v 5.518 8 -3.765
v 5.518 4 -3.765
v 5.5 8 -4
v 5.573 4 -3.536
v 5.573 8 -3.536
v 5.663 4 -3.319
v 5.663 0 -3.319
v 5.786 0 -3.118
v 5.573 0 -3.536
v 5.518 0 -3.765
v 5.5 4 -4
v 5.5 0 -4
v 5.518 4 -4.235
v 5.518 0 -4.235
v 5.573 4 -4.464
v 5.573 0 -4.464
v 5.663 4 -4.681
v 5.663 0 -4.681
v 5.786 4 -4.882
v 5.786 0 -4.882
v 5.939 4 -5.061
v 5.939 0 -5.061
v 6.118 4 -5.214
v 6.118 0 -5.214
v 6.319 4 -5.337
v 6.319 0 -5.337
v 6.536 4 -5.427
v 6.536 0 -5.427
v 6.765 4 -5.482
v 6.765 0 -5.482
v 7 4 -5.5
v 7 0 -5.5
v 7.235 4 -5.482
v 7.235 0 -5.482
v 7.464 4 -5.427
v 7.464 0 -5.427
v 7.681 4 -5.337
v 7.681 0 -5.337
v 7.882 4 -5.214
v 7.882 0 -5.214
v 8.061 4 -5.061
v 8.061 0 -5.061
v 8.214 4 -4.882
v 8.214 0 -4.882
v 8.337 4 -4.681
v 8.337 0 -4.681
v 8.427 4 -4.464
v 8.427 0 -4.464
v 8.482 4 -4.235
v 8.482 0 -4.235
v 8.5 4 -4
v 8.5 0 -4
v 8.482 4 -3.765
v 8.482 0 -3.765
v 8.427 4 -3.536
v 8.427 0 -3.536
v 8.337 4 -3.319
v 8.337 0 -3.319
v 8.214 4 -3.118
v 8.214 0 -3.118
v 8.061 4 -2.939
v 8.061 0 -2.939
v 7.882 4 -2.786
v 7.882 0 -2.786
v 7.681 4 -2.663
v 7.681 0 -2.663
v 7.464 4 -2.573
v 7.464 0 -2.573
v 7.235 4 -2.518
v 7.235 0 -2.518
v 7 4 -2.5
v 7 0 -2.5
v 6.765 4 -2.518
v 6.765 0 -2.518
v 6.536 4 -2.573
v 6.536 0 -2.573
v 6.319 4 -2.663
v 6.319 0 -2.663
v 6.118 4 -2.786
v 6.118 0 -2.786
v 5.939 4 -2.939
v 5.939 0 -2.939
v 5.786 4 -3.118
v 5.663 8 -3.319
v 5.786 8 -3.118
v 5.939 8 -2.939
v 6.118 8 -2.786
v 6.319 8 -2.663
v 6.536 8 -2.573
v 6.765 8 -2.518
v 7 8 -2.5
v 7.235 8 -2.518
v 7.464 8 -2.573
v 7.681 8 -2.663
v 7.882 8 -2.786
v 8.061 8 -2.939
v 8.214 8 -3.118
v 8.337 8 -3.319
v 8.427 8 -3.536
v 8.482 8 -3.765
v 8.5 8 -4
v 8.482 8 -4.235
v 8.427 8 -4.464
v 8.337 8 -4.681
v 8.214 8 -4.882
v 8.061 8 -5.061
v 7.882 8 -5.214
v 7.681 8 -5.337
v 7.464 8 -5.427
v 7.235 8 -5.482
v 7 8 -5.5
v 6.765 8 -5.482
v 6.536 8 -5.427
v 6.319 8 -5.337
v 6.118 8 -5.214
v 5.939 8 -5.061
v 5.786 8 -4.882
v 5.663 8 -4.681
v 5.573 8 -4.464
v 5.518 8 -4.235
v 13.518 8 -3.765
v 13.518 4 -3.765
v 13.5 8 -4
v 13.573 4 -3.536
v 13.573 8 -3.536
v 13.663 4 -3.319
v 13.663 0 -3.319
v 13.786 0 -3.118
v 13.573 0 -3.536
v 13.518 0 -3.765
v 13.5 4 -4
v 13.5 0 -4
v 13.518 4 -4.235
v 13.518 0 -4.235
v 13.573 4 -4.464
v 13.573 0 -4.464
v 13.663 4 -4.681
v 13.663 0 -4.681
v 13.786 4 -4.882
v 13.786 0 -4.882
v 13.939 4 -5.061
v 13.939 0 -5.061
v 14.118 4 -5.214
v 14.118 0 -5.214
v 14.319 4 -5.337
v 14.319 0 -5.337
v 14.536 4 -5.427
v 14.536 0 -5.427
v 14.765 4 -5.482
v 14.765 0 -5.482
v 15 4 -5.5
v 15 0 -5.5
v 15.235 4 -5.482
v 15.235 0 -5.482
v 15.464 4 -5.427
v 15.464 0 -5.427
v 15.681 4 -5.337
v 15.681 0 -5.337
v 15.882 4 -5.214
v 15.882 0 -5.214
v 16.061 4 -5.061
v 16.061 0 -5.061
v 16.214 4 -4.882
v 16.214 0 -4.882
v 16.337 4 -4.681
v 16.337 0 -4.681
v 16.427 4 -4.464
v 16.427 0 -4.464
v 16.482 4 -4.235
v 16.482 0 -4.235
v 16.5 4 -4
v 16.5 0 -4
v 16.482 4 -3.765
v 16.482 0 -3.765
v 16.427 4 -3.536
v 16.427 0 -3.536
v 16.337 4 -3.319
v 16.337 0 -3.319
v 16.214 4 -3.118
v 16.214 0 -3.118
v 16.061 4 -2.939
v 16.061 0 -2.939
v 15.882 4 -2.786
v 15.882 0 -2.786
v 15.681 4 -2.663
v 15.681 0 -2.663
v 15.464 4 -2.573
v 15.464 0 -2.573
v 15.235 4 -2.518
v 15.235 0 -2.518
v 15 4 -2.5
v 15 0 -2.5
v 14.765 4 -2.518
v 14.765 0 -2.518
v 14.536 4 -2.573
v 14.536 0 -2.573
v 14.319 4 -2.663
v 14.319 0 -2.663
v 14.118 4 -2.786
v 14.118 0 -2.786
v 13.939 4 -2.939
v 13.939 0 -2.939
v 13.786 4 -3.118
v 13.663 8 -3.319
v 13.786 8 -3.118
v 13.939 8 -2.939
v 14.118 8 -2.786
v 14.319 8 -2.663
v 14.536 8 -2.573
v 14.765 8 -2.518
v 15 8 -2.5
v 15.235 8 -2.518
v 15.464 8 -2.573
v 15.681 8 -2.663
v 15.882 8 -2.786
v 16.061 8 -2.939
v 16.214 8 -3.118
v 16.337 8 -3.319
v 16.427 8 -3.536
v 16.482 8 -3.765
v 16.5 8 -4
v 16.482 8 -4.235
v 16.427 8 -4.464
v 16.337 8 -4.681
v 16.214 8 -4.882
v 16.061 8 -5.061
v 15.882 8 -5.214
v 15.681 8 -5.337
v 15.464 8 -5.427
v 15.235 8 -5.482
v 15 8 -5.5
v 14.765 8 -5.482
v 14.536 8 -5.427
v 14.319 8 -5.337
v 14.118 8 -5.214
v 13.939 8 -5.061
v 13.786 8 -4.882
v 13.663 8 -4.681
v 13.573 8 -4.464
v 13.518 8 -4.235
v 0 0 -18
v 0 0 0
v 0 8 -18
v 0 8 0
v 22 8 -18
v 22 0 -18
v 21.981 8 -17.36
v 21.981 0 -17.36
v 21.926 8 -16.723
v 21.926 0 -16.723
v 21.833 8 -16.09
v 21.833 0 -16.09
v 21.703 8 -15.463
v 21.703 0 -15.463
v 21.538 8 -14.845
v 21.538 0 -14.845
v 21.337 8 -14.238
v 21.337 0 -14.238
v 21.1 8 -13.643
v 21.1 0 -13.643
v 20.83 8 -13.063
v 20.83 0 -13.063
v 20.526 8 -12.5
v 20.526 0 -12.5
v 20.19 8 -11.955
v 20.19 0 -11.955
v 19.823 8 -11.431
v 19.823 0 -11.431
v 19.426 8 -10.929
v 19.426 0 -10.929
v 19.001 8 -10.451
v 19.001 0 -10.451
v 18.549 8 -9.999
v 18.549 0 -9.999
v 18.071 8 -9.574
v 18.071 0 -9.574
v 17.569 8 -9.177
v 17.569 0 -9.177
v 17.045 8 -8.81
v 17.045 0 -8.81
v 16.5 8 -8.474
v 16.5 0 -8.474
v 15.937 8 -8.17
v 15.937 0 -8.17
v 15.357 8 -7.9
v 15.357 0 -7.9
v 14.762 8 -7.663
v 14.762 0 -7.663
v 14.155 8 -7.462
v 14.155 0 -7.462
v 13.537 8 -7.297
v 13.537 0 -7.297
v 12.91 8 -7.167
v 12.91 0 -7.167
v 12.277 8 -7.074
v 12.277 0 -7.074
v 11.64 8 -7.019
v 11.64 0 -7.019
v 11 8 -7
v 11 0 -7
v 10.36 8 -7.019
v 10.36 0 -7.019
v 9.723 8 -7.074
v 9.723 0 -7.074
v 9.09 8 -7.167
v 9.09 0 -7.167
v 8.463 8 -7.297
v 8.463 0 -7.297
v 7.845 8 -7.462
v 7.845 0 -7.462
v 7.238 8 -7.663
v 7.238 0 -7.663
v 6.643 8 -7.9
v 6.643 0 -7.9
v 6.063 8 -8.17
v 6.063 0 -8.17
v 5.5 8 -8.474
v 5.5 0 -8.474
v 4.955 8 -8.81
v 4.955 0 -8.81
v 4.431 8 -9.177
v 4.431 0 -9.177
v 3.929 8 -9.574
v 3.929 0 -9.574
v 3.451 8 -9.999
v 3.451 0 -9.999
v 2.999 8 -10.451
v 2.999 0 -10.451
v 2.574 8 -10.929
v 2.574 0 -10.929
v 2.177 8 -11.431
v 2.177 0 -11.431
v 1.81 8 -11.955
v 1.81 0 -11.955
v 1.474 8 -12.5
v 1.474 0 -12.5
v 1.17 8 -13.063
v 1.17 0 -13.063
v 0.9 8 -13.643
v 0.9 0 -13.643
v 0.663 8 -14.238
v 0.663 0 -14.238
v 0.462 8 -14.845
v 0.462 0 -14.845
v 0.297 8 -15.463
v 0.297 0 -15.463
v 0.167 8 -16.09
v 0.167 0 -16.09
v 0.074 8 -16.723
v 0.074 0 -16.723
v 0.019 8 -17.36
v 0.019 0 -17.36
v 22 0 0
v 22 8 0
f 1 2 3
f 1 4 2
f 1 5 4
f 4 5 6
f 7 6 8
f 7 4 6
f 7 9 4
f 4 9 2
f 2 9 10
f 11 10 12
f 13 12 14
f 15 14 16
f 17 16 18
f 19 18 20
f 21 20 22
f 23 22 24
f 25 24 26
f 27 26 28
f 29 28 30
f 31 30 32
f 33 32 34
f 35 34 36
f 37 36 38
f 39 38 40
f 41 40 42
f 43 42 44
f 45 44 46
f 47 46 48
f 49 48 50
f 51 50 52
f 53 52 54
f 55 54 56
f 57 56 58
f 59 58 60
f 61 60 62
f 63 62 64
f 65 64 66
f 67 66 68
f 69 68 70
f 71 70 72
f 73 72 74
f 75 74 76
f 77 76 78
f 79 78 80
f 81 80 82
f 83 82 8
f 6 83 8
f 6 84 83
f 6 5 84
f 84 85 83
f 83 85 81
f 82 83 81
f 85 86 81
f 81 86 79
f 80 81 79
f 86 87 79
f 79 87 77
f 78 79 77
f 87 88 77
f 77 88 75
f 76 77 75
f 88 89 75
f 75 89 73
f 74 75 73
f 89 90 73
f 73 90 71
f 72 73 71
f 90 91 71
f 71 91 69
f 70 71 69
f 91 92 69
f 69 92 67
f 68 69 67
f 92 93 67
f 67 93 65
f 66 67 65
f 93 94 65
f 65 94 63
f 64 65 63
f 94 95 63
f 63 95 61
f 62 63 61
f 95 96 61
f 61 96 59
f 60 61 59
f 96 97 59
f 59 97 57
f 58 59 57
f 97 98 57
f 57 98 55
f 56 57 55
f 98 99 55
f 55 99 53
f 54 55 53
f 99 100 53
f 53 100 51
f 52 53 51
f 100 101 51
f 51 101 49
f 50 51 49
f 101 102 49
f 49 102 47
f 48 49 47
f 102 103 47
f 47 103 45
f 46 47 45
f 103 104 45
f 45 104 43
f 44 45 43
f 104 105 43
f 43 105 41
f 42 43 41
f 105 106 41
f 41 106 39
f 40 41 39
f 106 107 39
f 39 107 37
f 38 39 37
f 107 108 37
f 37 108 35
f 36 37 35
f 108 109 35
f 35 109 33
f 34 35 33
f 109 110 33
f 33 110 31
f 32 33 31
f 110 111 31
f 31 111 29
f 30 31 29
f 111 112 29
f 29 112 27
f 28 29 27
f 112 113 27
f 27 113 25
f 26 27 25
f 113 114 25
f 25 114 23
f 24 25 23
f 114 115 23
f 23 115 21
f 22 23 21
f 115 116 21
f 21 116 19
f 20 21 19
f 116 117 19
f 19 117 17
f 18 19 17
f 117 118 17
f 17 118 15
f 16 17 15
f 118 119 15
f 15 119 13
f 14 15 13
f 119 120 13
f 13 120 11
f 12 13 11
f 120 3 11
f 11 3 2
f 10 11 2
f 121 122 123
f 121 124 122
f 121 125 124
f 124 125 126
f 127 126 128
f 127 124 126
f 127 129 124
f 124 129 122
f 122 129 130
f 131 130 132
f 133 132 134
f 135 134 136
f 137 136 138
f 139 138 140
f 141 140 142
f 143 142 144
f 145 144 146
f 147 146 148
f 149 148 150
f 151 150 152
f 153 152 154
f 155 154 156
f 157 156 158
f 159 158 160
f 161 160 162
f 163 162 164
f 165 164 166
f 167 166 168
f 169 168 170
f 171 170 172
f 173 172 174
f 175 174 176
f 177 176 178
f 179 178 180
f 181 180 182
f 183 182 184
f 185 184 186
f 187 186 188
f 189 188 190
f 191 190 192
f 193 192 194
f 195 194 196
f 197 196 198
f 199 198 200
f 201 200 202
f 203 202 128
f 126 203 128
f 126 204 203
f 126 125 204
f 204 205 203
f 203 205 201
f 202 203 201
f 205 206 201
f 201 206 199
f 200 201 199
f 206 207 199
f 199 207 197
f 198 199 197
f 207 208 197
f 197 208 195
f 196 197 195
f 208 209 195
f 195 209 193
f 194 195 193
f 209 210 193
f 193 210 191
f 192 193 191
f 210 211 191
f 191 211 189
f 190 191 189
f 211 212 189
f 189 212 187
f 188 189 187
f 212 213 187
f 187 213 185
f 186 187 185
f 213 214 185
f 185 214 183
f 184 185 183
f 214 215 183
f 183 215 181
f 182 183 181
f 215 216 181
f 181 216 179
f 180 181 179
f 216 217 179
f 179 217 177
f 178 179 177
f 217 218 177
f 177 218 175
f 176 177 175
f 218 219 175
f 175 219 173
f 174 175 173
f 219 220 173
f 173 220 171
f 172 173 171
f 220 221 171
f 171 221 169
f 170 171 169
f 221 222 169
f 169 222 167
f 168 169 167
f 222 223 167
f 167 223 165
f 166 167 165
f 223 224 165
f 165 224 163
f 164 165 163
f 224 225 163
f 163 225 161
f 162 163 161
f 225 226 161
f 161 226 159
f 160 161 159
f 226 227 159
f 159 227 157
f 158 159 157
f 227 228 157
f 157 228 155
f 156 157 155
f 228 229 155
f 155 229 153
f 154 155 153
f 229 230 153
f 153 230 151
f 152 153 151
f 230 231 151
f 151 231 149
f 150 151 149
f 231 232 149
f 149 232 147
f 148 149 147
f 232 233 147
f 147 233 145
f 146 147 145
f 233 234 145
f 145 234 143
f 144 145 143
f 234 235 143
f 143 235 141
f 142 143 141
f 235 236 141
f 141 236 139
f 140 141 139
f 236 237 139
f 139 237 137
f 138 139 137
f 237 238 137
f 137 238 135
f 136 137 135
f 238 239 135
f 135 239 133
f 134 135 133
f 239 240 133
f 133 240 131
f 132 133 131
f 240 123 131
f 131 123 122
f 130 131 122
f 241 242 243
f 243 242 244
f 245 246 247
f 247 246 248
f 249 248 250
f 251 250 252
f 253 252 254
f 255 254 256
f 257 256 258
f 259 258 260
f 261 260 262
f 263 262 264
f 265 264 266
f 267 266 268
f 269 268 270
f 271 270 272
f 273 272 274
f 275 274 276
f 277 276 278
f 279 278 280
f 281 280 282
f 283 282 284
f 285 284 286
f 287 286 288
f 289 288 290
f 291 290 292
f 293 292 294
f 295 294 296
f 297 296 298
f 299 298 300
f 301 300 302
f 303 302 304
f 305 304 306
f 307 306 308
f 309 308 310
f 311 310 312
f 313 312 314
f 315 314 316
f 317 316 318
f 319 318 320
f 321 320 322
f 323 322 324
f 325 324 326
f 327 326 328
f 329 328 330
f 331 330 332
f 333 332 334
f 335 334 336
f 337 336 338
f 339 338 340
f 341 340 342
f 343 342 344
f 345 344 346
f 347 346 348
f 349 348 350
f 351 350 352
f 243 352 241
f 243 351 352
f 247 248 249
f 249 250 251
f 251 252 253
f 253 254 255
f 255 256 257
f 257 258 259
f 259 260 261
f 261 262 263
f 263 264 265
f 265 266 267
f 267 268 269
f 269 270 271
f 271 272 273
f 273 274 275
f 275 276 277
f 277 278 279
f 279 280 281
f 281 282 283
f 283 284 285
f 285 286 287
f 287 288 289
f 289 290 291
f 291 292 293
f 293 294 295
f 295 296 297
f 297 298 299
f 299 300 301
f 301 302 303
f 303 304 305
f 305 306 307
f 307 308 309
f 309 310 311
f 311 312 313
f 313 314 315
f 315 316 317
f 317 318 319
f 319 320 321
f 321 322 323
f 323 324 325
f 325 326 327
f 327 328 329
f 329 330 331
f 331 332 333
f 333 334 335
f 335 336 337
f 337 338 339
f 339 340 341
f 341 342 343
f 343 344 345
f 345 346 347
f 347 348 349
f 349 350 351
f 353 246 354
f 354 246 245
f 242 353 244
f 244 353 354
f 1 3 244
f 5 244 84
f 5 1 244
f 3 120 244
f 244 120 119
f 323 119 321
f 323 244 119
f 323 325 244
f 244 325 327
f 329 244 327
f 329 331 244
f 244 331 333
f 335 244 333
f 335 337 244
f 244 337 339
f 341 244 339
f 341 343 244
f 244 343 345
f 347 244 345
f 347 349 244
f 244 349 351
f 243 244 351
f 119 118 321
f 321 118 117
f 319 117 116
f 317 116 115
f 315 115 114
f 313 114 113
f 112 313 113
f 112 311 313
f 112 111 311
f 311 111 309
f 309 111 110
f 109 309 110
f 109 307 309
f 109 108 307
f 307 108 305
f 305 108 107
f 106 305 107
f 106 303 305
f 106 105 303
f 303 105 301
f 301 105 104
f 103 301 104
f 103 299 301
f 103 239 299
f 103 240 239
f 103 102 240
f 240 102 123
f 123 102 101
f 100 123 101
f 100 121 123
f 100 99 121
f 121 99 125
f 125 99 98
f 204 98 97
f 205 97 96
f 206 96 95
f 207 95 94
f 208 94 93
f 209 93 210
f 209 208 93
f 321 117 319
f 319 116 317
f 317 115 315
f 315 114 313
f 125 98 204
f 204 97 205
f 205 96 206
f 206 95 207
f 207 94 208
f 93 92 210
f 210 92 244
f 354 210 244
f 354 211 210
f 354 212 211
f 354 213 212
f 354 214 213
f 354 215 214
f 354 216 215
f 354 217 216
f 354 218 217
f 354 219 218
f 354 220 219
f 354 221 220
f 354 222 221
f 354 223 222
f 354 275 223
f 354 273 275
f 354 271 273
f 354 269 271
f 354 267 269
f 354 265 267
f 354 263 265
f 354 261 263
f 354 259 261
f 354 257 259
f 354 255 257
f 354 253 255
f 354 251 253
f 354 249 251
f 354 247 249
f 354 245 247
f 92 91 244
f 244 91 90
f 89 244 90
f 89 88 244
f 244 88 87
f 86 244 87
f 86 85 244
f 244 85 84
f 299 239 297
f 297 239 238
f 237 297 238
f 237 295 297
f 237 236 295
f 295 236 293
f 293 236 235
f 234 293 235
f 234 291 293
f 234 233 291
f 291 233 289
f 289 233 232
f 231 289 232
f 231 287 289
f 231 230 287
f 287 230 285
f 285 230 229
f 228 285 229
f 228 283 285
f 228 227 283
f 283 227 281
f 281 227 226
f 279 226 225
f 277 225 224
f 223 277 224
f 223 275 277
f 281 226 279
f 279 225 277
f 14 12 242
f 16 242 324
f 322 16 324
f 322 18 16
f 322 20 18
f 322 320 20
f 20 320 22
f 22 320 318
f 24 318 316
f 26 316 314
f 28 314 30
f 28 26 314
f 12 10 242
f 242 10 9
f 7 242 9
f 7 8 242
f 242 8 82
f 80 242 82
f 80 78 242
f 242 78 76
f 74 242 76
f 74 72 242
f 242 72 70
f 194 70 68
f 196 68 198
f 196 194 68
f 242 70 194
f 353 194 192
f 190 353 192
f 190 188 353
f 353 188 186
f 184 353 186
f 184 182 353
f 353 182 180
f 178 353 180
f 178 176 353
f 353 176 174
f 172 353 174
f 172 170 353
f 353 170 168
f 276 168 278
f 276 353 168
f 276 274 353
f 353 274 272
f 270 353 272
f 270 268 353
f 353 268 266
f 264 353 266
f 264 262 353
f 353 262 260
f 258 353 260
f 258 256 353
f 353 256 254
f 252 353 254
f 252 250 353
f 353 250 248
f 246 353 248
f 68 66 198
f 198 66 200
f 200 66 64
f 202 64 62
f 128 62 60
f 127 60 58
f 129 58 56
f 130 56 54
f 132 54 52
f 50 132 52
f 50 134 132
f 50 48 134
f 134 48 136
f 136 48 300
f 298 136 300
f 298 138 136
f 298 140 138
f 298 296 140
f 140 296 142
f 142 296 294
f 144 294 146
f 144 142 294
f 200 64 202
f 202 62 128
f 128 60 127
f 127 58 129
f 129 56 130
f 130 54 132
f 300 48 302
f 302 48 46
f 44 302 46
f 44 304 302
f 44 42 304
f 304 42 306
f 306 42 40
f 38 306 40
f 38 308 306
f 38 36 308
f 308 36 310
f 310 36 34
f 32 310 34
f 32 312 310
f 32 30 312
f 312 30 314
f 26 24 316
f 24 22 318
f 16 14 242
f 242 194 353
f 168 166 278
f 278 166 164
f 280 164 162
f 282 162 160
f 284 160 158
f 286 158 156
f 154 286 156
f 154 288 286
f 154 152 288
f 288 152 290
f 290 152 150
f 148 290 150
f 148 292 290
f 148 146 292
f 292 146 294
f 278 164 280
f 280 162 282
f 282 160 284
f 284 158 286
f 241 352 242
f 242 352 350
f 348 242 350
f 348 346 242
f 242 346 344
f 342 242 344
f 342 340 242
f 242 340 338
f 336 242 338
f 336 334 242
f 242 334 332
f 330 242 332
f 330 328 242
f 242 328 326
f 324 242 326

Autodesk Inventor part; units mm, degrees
ref_plane "YZ Plane" through (0, 0, 0) normal (1, 0, 0) x (0, 1, 0)
ref_plane "XZ Plane" through (0, 0, 0) normal (0, 1, 0) x (-1, 0, 0)
ref_plane "XY Plane" through (0, 0, 0) normal (0, 0, 1) x (1, 0, 0)
sketch "Boceto1" plane through (0, 0, 0) normal (0, 1, 0) x (-1, 0, 0)
  line L0 (0, 0) -> (-22, 0)
  line L1 (-22, 0) -> (-22, -18)
  line L2 (0, -18) -> (0, 0)
  arc A0 (0, -18) -> (-22, -18) centre (-11, -18) ccw
  circle A1 centre (-15, -4) radius 1.5
  circle A2 centre (-7, -4) radius 1.5
  dimension "d0" = 3
  dimension "d1" = 4
  dimension "d2" = 7
  dimension "d3" = 3
  dimension "d4" = 7
  dimension "d5" = 4
extrude "Extrusión1" add sketch "Boceto1" along normal blind 8
properties part number "CubreRodamiento" material "Nilón 6/6"
